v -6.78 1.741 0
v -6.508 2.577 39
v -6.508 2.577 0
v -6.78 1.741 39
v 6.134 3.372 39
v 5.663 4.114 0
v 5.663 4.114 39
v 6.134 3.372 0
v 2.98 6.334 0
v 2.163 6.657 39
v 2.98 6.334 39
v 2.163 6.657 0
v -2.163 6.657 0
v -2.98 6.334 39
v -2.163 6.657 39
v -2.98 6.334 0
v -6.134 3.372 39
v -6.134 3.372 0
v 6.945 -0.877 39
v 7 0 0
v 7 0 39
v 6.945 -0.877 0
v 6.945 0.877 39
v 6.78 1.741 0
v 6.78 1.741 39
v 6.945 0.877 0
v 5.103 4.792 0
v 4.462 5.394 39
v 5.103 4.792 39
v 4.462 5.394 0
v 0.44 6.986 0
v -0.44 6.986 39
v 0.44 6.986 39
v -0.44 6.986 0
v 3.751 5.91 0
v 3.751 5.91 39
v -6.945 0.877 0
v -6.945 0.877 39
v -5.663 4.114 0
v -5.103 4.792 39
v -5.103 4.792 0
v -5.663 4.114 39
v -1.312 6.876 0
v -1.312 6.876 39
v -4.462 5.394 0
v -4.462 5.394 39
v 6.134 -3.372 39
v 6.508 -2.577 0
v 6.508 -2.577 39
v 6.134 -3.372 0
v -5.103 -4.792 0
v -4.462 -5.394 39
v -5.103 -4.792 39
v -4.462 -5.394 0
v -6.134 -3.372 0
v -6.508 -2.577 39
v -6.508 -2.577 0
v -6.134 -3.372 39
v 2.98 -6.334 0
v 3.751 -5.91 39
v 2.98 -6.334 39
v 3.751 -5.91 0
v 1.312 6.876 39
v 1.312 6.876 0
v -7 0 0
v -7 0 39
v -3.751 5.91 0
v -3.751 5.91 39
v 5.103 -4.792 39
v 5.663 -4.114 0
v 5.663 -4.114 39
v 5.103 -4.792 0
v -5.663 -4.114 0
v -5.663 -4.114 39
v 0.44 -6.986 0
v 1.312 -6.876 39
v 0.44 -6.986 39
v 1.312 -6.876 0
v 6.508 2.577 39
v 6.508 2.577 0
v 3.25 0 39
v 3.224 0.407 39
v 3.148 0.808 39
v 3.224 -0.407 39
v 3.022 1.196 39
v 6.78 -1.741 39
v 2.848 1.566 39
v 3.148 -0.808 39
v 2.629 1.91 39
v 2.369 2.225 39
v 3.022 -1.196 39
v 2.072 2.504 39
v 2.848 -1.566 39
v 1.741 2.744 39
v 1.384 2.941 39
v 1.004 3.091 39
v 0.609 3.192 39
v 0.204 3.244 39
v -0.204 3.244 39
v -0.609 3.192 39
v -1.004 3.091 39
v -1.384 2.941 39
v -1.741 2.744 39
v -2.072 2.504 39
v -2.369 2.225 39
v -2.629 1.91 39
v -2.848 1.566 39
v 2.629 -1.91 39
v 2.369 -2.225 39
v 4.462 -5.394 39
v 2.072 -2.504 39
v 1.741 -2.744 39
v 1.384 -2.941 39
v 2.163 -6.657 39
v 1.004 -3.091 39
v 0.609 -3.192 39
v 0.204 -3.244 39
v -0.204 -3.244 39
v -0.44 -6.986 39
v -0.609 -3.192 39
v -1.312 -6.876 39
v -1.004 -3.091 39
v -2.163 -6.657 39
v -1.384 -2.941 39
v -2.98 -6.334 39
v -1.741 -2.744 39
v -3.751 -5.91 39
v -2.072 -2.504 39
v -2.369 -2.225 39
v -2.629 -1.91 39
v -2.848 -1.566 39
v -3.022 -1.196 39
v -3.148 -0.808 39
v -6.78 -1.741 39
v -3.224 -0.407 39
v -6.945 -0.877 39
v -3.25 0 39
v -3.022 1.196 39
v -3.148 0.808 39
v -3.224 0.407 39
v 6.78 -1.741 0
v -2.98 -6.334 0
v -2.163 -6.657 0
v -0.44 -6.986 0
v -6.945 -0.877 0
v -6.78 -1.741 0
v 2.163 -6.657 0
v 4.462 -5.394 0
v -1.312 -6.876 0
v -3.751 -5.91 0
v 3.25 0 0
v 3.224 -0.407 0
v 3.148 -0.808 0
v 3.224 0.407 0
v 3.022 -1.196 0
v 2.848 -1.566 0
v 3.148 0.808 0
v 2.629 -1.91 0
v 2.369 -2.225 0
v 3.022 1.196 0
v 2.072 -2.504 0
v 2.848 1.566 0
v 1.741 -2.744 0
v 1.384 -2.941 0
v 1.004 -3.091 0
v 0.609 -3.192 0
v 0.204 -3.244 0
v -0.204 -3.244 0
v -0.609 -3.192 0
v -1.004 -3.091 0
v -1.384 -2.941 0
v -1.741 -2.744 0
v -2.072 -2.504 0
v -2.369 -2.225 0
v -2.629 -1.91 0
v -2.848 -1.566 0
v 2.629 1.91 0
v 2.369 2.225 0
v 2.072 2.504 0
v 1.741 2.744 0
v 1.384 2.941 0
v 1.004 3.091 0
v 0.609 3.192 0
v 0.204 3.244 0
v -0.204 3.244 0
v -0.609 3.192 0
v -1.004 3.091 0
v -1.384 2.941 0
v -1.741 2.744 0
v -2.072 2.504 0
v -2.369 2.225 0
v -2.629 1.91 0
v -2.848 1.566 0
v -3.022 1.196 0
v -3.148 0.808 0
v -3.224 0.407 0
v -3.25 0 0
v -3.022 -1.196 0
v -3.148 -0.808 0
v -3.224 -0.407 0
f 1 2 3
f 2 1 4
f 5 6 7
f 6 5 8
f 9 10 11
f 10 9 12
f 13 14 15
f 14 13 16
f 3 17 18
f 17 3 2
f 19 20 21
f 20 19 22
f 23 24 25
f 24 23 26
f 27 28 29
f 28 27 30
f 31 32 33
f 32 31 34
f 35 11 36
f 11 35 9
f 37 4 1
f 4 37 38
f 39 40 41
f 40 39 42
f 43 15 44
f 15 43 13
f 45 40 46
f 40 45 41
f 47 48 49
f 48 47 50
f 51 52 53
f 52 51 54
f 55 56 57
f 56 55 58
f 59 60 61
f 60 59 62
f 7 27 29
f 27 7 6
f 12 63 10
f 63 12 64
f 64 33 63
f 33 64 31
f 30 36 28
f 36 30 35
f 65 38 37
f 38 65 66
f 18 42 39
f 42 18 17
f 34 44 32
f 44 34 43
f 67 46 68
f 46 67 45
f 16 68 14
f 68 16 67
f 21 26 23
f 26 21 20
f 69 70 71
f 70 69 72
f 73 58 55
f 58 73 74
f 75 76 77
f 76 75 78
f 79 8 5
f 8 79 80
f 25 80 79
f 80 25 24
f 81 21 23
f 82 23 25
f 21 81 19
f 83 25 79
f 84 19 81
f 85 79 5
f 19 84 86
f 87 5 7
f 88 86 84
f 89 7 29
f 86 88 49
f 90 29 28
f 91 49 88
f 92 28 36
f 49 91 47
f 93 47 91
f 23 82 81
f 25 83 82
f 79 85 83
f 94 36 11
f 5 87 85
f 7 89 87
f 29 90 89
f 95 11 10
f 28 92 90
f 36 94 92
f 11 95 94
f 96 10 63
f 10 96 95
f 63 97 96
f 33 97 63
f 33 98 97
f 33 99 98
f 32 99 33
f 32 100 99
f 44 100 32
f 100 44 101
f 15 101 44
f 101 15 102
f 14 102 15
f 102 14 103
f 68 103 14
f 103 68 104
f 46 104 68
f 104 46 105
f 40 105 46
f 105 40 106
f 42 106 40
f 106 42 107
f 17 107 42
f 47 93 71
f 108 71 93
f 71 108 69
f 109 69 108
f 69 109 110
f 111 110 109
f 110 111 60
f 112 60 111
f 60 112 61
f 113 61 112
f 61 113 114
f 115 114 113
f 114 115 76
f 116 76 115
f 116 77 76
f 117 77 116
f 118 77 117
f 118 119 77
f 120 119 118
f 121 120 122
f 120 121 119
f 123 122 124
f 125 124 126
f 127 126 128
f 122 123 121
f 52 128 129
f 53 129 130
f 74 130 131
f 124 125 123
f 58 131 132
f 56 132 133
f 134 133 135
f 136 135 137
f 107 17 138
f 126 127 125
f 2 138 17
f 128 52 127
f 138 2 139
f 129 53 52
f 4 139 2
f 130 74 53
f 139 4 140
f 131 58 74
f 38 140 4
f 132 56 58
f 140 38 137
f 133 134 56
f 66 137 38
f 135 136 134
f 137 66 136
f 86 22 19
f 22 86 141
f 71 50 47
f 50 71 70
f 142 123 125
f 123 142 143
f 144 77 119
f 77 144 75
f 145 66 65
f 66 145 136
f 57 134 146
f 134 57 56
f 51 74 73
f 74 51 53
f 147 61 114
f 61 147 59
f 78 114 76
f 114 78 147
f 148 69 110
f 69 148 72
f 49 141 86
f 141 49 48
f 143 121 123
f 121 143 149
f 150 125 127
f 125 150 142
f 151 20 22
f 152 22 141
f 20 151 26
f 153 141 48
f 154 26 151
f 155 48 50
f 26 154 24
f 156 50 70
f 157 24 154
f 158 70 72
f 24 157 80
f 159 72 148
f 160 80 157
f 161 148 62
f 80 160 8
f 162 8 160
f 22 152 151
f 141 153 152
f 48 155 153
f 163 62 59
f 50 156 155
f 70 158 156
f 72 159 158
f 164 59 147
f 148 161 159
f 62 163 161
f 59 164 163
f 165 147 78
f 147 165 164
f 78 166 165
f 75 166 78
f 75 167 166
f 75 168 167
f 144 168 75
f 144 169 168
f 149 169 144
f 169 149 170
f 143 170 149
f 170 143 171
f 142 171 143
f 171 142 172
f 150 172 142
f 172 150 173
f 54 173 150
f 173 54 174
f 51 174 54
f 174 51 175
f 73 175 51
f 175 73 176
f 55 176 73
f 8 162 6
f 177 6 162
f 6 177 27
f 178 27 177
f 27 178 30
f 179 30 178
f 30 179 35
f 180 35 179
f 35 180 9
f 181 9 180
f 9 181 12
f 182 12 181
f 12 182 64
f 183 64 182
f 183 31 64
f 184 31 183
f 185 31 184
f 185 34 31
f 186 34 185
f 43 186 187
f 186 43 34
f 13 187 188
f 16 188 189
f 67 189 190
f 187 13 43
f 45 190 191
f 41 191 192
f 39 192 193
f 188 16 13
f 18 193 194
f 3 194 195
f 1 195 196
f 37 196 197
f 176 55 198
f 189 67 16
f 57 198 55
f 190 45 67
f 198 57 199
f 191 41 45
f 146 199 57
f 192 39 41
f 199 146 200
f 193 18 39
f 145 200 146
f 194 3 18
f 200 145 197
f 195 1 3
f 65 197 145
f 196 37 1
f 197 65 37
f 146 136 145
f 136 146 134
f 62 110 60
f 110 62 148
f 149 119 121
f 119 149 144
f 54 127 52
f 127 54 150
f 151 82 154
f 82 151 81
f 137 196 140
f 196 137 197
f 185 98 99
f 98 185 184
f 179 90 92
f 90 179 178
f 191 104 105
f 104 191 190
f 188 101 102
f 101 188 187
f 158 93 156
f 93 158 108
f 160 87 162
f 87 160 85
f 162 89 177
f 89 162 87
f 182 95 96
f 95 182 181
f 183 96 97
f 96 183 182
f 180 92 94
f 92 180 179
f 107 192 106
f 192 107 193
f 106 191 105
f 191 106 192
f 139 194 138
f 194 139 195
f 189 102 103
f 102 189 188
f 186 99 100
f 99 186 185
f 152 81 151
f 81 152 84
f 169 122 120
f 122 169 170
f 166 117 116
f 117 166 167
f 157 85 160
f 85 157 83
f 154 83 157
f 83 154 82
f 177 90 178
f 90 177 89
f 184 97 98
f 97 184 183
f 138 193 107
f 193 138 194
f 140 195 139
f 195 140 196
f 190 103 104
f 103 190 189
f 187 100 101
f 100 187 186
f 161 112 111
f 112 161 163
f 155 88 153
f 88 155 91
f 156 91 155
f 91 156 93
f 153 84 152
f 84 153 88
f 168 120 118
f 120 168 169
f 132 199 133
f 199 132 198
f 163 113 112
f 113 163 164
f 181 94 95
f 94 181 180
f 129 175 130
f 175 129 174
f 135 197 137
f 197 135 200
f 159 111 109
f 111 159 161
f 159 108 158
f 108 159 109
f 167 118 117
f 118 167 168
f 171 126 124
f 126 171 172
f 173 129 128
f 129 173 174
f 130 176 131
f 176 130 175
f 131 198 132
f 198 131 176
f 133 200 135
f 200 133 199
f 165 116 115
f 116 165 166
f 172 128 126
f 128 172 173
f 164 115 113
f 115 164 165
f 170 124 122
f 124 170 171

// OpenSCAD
$fn = 50;


difference() {
	union() {
		cylinder(h = 39, r = 7.0000000000);
	}
	union() {
		translate(v = [0.0000000000, 0.0000000000, -100.0000000000]) {
			cylinder(h = 200, r = 3.2500000000);
		}
	}
}
